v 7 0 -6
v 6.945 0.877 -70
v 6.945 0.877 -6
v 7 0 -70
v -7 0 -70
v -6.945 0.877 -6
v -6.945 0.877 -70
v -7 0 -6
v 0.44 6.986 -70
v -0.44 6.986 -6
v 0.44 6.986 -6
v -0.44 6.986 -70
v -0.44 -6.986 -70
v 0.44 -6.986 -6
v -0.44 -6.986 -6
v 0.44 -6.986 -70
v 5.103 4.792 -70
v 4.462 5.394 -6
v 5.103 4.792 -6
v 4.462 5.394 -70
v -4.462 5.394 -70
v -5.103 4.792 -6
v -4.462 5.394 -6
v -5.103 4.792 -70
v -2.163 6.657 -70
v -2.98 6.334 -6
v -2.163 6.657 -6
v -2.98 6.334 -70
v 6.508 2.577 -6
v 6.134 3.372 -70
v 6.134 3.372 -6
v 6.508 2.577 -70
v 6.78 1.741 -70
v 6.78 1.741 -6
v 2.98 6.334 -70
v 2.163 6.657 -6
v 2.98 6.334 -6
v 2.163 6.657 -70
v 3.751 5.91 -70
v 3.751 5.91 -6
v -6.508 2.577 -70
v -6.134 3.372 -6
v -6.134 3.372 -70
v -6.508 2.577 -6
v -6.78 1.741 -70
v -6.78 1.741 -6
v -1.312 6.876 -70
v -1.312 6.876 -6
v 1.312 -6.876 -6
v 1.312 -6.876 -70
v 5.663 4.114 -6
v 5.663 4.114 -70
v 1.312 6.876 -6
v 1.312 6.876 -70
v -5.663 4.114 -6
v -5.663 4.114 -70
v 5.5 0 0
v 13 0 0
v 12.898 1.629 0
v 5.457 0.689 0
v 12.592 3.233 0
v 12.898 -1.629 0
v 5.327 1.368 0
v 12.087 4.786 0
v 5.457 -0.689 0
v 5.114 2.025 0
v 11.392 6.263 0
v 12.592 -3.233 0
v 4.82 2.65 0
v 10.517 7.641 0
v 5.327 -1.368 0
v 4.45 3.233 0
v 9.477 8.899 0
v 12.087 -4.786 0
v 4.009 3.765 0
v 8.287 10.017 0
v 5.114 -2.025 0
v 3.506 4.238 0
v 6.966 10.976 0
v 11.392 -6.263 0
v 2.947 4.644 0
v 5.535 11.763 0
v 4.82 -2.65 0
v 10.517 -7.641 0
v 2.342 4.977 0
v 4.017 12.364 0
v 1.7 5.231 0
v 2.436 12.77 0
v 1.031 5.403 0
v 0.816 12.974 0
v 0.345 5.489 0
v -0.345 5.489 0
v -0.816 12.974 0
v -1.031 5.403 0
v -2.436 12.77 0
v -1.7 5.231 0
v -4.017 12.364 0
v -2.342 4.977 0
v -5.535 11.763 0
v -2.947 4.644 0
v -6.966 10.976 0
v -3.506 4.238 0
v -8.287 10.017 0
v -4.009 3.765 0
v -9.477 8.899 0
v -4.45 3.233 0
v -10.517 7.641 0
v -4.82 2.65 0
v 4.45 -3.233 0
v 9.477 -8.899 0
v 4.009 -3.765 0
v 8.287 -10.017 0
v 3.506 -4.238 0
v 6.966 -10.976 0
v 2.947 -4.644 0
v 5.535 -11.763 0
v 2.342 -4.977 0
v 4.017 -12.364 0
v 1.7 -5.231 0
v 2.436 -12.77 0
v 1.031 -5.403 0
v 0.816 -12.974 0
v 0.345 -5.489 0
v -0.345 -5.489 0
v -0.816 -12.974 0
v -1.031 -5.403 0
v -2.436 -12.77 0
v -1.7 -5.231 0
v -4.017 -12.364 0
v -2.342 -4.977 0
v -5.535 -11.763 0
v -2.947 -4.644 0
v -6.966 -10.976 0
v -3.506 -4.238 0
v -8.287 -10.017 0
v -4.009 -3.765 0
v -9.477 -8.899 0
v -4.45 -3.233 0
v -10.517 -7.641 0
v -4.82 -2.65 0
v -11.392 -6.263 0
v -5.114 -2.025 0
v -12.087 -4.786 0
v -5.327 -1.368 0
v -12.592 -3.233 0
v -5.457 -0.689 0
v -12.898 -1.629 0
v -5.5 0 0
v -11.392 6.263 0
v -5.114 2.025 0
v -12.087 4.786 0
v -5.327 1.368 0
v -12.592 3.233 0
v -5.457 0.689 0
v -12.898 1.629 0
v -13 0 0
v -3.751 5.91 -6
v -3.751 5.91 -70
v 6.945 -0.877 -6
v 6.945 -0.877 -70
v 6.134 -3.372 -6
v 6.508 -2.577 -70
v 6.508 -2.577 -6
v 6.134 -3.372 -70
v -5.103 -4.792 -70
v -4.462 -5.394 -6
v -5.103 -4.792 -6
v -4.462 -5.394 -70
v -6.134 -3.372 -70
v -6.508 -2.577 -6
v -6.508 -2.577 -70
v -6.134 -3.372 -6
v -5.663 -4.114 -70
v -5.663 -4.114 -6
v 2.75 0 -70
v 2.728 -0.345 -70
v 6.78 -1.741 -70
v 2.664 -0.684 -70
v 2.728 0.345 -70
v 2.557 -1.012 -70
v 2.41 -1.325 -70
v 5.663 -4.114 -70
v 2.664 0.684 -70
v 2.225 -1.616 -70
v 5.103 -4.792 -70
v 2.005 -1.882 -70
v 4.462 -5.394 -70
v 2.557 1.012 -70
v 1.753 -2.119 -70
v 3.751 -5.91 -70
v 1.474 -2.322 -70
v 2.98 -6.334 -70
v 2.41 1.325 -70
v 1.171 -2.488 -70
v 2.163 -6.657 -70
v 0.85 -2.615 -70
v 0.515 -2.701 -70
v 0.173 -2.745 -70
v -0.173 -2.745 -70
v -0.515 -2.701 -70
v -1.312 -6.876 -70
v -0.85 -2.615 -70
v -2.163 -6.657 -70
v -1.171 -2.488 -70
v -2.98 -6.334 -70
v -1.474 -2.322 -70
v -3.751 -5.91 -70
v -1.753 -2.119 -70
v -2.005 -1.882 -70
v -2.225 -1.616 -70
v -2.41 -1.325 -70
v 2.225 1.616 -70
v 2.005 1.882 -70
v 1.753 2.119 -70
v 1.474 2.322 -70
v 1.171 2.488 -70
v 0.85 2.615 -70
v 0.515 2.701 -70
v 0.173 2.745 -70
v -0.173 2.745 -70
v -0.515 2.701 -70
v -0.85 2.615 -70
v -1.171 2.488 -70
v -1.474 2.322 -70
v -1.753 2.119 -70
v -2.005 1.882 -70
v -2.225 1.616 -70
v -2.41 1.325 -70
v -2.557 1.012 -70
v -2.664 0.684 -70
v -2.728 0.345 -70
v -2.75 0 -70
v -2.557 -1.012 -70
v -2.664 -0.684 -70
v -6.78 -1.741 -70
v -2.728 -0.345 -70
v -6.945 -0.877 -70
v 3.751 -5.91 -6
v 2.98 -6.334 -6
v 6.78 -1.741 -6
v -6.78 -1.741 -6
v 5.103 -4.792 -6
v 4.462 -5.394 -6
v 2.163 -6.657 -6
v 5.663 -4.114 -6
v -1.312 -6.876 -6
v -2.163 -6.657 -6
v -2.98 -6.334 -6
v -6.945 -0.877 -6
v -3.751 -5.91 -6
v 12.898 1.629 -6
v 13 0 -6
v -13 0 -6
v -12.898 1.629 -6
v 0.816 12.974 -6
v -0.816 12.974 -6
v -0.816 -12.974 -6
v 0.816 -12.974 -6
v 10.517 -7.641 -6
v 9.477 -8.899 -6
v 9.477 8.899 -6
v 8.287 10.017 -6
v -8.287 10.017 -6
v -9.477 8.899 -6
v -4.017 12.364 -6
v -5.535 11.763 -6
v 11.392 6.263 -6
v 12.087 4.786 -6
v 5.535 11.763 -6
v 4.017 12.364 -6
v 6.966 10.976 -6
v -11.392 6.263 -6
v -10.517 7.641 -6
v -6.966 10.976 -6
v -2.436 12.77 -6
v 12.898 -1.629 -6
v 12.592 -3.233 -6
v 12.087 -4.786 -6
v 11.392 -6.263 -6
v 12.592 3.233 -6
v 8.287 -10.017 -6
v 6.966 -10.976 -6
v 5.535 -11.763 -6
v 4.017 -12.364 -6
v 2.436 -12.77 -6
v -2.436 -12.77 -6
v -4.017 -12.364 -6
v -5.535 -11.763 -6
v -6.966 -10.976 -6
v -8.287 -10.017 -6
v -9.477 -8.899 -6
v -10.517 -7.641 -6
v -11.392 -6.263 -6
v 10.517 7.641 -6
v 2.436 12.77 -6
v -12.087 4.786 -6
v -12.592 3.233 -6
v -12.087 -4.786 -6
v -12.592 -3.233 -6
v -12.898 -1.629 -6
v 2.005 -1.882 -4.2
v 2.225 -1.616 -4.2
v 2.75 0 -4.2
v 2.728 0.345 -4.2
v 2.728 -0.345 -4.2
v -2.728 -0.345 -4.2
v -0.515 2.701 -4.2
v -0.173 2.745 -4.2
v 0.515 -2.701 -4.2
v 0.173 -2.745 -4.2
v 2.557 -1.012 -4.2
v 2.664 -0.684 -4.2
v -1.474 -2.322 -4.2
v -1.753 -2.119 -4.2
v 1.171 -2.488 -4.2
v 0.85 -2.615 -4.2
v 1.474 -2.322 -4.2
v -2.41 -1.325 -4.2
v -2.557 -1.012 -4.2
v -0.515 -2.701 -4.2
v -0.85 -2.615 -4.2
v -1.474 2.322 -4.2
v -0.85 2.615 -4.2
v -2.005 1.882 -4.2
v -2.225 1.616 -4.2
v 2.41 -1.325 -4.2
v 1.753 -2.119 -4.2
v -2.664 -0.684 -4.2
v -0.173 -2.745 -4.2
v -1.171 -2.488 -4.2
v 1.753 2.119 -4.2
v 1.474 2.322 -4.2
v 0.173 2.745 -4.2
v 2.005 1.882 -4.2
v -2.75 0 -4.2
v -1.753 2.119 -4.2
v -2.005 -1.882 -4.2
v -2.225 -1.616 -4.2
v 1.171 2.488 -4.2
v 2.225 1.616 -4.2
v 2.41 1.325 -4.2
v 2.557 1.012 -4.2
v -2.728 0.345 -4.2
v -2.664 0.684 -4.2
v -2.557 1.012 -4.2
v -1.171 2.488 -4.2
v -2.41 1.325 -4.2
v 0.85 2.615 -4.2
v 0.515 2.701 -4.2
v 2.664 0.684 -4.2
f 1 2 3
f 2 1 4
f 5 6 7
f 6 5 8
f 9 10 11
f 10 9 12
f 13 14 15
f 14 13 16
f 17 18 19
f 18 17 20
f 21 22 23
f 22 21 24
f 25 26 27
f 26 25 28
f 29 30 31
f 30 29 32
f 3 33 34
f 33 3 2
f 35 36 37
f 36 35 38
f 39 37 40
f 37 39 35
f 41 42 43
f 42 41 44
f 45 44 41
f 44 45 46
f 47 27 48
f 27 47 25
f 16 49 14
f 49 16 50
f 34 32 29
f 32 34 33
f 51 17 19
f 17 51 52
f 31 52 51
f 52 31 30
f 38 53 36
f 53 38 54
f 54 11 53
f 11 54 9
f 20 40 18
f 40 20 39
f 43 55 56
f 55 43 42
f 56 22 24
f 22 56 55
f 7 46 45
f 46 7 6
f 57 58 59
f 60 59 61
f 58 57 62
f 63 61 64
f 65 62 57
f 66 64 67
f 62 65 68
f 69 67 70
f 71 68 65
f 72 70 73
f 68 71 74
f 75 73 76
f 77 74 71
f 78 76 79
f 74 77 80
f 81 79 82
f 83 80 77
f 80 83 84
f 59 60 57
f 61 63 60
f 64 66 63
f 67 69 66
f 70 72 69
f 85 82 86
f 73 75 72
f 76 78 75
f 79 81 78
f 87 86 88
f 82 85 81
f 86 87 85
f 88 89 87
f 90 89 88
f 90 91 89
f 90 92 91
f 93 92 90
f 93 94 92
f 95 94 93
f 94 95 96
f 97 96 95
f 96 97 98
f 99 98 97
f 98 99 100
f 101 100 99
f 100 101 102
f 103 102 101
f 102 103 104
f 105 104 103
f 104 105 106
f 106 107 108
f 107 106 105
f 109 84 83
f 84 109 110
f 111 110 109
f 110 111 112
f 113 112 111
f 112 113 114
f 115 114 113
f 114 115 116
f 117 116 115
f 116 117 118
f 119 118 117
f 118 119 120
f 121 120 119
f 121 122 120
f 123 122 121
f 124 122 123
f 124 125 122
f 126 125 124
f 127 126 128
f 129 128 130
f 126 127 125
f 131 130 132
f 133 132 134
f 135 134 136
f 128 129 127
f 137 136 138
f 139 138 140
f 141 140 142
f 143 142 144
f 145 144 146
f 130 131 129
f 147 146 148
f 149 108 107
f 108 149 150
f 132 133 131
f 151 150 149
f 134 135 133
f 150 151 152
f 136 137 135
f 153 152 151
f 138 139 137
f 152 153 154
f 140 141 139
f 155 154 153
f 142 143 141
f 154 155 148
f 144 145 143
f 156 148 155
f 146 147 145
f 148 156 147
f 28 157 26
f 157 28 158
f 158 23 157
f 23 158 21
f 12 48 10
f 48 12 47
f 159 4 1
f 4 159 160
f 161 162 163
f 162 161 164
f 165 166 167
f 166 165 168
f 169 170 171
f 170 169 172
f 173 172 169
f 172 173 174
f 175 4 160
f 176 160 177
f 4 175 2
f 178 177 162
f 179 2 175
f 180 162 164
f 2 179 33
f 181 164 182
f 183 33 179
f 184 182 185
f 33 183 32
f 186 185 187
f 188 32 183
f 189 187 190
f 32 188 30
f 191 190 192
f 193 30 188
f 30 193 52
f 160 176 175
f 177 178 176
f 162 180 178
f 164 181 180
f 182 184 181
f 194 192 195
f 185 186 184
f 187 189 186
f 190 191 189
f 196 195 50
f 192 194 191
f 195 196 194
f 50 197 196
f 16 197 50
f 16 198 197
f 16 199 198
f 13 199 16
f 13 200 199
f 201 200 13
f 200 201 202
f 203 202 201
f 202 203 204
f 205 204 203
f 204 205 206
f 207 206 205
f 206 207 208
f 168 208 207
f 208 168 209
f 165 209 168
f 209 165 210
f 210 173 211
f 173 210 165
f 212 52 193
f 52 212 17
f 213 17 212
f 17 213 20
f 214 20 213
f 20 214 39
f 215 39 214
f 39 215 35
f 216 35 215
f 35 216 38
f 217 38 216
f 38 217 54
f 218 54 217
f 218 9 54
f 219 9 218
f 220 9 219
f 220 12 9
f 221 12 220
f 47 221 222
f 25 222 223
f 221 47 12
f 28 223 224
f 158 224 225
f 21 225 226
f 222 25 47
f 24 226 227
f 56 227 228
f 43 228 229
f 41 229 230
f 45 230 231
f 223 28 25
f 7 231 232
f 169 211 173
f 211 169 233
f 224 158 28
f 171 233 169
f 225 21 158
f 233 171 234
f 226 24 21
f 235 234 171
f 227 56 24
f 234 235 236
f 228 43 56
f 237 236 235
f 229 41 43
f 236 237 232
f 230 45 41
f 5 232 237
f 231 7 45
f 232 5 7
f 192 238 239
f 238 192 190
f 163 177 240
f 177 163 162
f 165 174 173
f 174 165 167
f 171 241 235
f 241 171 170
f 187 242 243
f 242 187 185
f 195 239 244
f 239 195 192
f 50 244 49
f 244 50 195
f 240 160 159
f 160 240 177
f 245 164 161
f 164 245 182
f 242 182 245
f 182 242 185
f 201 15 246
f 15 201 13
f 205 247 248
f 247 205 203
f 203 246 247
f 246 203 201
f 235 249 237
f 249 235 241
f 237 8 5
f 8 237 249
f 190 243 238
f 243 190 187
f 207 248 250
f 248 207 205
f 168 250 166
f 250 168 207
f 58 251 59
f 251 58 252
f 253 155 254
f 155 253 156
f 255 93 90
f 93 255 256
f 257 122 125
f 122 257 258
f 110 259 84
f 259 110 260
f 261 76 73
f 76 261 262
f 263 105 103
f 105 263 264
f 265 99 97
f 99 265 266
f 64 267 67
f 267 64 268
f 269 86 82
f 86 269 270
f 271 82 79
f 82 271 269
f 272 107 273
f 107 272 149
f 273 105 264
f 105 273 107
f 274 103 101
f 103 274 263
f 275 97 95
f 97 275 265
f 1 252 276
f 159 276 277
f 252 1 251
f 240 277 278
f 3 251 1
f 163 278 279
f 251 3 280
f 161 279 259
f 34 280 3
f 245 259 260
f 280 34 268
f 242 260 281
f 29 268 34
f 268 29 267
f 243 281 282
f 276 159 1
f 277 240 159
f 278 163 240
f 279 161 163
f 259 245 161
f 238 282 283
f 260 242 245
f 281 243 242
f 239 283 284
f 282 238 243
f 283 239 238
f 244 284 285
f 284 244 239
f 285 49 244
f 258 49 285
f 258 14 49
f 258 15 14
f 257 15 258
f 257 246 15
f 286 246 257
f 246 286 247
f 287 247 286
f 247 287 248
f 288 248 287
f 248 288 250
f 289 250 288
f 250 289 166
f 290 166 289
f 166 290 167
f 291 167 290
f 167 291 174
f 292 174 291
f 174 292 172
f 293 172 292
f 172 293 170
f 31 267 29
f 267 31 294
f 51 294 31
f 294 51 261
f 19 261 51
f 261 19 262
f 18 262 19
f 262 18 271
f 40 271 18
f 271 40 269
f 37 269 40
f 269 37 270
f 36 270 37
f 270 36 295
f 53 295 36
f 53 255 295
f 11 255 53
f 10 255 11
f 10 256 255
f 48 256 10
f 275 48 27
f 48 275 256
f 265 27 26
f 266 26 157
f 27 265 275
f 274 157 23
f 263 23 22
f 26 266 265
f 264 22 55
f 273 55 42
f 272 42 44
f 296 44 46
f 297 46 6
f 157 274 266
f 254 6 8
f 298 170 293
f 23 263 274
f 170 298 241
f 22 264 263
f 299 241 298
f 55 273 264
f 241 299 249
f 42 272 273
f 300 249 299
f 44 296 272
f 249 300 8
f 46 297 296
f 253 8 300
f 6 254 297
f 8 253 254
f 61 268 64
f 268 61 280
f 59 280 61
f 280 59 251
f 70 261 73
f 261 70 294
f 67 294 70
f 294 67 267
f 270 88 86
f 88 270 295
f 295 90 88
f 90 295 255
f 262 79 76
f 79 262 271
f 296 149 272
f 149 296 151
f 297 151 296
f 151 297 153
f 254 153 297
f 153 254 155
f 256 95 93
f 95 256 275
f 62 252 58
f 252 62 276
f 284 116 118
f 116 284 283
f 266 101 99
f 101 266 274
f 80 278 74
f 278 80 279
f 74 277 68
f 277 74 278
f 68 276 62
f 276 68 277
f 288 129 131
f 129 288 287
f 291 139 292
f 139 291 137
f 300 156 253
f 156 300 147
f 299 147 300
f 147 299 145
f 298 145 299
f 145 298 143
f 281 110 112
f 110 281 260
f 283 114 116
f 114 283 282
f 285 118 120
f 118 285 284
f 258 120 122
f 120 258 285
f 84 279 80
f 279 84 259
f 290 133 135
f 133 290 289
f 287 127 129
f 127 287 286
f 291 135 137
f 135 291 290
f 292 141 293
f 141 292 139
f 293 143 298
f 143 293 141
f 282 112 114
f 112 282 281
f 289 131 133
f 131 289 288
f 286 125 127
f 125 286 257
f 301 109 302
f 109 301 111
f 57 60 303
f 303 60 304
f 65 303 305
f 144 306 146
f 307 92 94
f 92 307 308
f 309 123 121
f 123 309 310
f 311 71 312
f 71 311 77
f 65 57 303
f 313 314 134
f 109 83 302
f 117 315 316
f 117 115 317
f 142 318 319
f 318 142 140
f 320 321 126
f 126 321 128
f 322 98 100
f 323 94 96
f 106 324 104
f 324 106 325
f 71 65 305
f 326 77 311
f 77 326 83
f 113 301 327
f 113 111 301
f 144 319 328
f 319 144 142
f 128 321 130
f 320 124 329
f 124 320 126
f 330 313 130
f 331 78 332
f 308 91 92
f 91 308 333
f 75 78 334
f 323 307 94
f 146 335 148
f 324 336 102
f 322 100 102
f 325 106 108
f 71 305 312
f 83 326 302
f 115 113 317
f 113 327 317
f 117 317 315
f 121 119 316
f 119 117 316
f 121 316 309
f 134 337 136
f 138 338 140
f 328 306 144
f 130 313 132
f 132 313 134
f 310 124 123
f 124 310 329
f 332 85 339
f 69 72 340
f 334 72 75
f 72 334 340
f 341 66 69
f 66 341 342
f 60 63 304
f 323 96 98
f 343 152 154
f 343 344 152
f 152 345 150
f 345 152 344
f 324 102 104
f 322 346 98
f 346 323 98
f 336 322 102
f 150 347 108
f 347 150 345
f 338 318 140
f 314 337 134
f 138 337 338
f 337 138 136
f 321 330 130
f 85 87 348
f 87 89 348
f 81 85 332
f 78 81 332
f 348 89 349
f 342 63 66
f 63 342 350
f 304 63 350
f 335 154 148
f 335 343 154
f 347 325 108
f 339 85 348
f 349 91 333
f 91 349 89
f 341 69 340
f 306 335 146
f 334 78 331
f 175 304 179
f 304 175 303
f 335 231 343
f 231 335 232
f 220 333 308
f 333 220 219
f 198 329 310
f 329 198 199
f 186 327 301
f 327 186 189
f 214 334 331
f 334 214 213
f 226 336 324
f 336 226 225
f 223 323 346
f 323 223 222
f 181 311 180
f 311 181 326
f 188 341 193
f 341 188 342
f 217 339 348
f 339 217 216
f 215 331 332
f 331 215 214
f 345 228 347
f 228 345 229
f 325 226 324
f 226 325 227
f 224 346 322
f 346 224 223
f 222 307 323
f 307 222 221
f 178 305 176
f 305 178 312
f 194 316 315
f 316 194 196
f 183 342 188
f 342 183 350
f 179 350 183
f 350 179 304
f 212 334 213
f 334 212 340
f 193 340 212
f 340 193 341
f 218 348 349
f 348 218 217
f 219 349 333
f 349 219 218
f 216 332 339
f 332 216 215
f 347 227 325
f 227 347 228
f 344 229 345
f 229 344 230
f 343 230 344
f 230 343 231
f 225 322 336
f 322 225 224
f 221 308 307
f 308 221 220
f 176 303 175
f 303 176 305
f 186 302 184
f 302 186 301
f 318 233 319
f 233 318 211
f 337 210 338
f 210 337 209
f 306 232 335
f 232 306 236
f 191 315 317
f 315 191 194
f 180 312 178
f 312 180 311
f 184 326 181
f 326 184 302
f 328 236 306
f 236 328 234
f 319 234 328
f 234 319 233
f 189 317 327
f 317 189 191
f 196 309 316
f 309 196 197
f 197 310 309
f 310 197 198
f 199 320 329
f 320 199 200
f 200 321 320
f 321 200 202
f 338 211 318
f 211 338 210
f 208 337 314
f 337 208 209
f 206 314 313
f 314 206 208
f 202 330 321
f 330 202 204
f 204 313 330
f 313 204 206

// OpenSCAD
$fn = 50;


difference() {
	union() {
		translate(v = [0, 0, -70.0000000000]) {
			cylinder(h = 70, r = 7.0000000000);
		}
		translate(v = [0, 0, -6.0000000000]) {
			cylinder(h = 6, r = 13.0000000000);
		}
	}
	union() {
		translate(v = [0, 0, 0]) {
			rotate(a = [0, 0, 0]) {
				difference() {
					union() {
						#translate(v = [0, 0, -70.0000000000]) {
							cylinder(h = 70, r = 2.2500000000);
						}
						#translate(v = [0, 0, -4.2000000000]) {
							cylinder(h = 4.2000000000, r1 = 2.7500000000, r2 = 5.5000000000);
						}
						#translate(v = [0, 0, -70.0000000000]) {
							cylinder(h = 70, r = 2.7500000000);
						}
						#translate(v = [0, 0, -70.0000000000]) {
							cylinder(h = 70, r = 2.2500000000);
						}
					}
					union();
				}
			}
		}
	}
}
